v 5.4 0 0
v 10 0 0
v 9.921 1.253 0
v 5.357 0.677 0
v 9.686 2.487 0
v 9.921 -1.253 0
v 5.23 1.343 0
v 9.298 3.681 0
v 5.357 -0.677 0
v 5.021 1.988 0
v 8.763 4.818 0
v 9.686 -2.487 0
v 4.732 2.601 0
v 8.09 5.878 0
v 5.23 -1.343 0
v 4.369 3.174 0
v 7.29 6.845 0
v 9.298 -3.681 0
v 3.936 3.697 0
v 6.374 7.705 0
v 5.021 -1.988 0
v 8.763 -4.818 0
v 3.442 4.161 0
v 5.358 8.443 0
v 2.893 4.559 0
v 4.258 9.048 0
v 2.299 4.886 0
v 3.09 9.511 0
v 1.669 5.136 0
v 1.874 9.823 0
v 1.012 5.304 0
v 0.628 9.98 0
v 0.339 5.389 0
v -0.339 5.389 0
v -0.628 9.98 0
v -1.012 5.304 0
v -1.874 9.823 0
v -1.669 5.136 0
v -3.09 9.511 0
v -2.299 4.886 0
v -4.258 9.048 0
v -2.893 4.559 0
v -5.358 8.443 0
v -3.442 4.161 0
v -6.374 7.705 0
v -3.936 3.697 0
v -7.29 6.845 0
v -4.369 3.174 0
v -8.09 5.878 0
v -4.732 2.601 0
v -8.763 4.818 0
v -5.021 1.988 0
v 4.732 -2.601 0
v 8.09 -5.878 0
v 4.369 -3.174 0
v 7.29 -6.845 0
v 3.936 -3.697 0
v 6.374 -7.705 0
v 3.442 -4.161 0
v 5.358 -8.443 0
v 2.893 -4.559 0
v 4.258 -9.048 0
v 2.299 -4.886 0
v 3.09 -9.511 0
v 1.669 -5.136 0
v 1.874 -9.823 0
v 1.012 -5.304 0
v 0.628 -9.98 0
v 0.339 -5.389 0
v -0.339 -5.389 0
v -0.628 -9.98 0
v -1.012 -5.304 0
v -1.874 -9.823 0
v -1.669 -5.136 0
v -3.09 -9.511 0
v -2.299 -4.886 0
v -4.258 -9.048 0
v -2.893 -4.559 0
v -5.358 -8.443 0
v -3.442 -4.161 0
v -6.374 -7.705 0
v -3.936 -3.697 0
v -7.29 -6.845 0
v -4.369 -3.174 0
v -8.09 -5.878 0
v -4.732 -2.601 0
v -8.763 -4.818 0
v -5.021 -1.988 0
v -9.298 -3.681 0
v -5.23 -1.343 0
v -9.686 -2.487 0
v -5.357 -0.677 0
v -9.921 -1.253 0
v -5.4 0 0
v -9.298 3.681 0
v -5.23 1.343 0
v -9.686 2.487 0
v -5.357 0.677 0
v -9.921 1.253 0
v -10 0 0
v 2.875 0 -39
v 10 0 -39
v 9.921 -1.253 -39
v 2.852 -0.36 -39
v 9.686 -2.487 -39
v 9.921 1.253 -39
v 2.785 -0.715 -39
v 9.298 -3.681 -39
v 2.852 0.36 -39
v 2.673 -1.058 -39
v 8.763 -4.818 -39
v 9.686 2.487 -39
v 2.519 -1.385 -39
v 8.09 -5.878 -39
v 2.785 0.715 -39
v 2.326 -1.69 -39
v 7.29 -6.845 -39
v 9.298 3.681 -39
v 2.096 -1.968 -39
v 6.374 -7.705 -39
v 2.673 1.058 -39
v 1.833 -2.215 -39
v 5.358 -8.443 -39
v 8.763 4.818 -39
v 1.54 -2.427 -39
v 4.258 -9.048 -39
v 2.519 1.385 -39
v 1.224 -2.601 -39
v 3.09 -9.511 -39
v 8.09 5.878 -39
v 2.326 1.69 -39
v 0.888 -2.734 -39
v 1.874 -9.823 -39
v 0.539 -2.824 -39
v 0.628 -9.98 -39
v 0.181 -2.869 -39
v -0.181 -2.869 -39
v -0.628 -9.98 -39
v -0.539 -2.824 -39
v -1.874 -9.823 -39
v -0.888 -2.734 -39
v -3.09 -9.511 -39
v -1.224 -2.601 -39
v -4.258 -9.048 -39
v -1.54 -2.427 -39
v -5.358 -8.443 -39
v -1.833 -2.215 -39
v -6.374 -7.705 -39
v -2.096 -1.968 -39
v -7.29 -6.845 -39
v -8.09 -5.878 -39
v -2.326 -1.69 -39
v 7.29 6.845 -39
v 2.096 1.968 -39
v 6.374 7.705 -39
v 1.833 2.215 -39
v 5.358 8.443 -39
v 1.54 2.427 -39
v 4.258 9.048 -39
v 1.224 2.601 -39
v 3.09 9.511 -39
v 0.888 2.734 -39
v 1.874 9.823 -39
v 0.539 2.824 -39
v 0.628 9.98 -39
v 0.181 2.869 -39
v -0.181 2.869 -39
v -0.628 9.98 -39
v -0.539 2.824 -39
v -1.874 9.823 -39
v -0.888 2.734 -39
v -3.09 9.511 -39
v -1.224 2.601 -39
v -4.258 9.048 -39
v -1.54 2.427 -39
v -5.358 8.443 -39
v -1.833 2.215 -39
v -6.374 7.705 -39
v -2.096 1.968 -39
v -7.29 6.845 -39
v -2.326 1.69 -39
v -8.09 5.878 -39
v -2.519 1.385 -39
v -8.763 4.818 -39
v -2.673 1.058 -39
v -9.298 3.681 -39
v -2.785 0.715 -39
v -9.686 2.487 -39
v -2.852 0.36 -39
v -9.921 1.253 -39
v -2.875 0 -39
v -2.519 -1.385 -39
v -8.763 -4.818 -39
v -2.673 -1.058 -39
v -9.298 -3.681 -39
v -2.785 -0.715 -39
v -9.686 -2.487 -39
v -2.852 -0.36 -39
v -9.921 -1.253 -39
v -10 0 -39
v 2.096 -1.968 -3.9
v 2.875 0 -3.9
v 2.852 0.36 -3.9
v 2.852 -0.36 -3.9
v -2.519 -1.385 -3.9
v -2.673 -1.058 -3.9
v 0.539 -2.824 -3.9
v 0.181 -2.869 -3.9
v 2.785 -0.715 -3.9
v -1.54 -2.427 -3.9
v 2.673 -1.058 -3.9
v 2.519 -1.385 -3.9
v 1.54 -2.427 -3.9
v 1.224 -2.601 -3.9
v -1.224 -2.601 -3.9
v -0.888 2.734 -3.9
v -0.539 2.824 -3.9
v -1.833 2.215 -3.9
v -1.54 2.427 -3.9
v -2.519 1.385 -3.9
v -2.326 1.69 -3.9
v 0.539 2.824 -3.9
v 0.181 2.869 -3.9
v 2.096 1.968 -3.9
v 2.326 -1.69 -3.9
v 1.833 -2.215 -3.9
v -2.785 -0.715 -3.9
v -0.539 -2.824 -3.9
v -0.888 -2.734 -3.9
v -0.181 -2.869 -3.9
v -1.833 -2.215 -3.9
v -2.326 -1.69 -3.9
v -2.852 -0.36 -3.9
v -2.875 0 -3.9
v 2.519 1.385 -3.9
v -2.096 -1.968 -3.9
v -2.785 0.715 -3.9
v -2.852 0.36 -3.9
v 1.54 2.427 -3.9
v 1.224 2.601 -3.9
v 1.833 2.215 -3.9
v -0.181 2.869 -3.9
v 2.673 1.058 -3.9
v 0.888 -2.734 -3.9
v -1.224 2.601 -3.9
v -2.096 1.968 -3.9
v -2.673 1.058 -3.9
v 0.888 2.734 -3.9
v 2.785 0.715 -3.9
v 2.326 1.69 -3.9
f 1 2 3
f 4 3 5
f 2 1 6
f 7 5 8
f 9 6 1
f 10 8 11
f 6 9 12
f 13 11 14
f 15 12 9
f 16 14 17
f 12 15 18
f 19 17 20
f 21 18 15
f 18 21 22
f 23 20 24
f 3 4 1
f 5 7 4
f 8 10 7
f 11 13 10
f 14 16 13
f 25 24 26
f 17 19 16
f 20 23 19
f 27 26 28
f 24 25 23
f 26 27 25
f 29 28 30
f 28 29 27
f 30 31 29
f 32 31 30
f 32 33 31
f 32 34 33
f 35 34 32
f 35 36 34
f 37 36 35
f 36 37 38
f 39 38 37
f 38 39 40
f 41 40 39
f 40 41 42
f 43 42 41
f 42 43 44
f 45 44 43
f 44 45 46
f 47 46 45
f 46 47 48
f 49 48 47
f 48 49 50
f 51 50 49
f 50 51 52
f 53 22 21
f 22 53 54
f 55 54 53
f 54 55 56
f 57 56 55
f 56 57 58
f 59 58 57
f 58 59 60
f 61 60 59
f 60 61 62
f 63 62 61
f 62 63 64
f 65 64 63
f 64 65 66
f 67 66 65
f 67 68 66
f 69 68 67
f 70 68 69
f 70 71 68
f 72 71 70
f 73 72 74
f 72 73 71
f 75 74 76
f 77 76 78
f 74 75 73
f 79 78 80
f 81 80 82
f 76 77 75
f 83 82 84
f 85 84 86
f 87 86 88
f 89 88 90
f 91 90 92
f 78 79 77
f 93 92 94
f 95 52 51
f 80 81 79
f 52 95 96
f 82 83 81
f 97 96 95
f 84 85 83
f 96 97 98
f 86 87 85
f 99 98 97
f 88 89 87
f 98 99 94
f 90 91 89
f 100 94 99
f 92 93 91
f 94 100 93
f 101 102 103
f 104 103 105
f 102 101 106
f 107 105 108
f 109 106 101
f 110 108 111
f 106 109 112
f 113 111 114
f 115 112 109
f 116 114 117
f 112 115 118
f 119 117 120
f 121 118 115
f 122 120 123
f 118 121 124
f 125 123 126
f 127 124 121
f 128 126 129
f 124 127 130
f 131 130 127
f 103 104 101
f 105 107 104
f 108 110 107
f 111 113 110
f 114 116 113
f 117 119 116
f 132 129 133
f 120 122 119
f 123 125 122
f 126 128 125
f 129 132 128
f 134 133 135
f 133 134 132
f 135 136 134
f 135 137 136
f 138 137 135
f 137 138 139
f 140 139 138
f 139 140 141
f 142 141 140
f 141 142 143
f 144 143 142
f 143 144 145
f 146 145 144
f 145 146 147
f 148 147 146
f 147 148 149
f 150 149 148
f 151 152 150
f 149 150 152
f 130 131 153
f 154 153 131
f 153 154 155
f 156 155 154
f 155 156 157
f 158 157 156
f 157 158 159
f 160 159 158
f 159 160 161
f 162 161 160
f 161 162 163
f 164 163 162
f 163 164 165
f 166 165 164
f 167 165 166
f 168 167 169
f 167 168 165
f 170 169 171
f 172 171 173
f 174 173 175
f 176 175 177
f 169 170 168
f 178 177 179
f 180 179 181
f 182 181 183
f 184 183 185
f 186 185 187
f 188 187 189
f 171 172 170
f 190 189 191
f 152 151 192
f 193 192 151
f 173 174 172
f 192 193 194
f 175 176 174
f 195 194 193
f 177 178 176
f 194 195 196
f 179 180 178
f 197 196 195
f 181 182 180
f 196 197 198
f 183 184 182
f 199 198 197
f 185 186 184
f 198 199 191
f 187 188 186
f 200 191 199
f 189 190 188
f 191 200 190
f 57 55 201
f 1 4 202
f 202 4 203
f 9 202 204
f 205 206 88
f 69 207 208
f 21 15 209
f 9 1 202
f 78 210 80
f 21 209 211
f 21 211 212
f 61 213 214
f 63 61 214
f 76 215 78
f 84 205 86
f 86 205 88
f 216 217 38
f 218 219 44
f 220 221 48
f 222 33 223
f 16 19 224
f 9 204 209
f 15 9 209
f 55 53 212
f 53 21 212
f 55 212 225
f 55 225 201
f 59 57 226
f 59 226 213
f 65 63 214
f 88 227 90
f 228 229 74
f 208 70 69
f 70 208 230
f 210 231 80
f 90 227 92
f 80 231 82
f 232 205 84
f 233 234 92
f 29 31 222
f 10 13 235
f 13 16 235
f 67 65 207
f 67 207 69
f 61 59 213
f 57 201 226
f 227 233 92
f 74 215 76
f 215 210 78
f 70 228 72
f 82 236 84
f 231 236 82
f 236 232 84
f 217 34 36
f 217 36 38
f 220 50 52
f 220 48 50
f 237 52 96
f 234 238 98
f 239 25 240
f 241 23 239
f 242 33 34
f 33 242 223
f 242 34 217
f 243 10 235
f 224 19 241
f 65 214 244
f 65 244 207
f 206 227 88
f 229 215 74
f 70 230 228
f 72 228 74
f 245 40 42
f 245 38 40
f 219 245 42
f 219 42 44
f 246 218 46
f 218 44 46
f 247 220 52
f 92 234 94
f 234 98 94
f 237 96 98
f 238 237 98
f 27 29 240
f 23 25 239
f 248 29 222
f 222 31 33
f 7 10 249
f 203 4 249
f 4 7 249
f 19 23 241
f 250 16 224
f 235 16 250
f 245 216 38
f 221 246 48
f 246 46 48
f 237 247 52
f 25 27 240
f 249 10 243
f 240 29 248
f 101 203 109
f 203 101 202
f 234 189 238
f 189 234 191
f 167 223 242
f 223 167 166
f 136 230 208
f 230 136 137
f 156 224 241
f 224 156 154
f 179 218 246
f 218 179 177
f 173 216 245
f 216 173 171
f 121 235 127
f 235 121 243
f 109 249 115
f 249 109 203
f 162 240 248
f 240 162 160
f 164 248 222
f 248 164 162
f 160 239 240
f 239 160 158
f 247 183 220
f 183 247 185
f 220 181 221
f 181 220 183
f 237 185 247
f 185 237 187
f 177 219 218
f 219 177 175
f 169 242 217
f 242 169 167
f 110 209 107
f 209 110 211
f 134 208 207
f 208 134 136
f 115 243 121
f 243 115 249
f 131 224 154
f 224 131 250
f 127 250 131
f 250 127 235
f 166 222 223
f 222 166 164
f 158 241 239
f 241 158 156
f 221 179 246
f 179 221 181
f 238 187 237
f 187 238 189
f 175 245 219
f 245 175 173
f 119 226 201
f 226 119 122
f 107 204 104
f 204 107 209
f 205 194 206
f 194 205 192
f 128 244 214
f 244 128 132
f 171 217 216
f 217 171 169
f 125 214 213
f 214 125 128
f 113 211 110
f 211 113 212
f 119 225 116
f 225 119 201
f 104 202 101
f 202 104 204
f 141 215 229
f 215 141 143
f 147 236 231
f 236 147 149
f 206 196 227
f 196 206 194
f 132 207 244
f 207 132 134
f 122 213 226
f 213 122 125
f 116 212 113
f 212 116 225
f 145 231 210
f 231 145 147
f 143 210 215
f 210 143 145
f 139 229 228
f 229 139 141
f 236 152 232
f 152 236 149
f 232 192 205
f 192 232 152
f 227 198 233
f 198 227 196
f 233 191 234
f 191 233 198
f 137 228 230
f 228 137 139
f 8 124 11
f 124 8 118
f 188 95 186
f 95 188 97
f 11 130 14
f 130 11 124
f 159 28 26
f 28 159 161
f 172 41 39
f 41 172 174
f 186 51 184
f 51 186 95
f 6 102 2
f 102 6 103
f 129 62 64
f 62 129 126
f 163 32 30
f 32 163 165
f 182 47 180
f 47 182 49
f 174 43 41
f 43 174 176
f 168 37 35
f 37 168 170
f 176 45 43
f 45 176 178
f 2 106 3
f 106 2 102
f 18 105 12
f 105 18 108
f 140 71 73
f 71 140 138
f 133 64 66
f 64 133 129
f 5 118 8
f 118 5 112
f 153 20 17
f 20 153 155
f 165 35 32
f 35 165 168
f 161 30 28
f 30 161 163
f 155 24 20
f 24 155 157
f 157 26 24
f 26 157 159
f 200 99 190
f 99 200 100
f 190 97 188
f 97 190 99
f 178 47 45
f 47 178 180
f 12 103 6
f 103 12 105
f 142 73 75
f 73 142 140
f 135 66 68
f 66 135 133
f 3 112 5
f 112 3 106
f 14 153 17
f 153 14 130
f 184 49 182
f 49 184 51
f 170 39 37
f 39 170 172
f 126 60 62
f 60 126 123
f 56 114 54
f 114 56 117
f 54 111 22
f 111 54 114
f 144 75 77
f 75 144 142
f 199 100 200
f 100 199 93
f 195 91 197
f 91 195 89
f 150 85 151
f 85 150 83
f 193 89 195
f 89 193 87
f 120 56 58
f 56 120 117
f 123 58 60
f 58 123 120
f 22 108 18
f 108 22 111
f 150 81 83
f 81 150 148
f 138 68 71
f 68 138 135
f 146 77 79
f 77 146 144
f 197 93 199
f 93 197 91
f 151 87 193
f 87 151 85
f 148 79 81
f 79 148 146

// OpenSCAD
$fn = 50;


difference() {
	union() {
		translate(v = [0, 0, -39.0000000000]) {
			cylinder(h = 39, r = 10.0000000000);
		}
		cylinder(h = 0, r = 20.0000000000);
	}
	union() {
		translate(v = [0, 0, 0]) {
			rotate(a = [0, 0, 0]) {
				difference() {
					union() {
						#translate(v = [0, 0, -39.0000000000]) {
							cylinder(h = 39, r = 2.6000000000);
						}
						#translate(v = [0, 0, -3.9000000000]) {
							cylinder(h = 3.9000000000, r1 = 2.8750000000, r2 = 5.4000000000);
						}
						#translate(v = [0, 0, -39.0000000000]) {
							cylinder(h = 39, r = 2.8750000000);
						}
						#translate(v = [0, 0, -39.0000000000]) {
							cylinder(h = 39, r = 2.6000000000);
						}
					}
					union();
				}
			}
		}
	}
}
